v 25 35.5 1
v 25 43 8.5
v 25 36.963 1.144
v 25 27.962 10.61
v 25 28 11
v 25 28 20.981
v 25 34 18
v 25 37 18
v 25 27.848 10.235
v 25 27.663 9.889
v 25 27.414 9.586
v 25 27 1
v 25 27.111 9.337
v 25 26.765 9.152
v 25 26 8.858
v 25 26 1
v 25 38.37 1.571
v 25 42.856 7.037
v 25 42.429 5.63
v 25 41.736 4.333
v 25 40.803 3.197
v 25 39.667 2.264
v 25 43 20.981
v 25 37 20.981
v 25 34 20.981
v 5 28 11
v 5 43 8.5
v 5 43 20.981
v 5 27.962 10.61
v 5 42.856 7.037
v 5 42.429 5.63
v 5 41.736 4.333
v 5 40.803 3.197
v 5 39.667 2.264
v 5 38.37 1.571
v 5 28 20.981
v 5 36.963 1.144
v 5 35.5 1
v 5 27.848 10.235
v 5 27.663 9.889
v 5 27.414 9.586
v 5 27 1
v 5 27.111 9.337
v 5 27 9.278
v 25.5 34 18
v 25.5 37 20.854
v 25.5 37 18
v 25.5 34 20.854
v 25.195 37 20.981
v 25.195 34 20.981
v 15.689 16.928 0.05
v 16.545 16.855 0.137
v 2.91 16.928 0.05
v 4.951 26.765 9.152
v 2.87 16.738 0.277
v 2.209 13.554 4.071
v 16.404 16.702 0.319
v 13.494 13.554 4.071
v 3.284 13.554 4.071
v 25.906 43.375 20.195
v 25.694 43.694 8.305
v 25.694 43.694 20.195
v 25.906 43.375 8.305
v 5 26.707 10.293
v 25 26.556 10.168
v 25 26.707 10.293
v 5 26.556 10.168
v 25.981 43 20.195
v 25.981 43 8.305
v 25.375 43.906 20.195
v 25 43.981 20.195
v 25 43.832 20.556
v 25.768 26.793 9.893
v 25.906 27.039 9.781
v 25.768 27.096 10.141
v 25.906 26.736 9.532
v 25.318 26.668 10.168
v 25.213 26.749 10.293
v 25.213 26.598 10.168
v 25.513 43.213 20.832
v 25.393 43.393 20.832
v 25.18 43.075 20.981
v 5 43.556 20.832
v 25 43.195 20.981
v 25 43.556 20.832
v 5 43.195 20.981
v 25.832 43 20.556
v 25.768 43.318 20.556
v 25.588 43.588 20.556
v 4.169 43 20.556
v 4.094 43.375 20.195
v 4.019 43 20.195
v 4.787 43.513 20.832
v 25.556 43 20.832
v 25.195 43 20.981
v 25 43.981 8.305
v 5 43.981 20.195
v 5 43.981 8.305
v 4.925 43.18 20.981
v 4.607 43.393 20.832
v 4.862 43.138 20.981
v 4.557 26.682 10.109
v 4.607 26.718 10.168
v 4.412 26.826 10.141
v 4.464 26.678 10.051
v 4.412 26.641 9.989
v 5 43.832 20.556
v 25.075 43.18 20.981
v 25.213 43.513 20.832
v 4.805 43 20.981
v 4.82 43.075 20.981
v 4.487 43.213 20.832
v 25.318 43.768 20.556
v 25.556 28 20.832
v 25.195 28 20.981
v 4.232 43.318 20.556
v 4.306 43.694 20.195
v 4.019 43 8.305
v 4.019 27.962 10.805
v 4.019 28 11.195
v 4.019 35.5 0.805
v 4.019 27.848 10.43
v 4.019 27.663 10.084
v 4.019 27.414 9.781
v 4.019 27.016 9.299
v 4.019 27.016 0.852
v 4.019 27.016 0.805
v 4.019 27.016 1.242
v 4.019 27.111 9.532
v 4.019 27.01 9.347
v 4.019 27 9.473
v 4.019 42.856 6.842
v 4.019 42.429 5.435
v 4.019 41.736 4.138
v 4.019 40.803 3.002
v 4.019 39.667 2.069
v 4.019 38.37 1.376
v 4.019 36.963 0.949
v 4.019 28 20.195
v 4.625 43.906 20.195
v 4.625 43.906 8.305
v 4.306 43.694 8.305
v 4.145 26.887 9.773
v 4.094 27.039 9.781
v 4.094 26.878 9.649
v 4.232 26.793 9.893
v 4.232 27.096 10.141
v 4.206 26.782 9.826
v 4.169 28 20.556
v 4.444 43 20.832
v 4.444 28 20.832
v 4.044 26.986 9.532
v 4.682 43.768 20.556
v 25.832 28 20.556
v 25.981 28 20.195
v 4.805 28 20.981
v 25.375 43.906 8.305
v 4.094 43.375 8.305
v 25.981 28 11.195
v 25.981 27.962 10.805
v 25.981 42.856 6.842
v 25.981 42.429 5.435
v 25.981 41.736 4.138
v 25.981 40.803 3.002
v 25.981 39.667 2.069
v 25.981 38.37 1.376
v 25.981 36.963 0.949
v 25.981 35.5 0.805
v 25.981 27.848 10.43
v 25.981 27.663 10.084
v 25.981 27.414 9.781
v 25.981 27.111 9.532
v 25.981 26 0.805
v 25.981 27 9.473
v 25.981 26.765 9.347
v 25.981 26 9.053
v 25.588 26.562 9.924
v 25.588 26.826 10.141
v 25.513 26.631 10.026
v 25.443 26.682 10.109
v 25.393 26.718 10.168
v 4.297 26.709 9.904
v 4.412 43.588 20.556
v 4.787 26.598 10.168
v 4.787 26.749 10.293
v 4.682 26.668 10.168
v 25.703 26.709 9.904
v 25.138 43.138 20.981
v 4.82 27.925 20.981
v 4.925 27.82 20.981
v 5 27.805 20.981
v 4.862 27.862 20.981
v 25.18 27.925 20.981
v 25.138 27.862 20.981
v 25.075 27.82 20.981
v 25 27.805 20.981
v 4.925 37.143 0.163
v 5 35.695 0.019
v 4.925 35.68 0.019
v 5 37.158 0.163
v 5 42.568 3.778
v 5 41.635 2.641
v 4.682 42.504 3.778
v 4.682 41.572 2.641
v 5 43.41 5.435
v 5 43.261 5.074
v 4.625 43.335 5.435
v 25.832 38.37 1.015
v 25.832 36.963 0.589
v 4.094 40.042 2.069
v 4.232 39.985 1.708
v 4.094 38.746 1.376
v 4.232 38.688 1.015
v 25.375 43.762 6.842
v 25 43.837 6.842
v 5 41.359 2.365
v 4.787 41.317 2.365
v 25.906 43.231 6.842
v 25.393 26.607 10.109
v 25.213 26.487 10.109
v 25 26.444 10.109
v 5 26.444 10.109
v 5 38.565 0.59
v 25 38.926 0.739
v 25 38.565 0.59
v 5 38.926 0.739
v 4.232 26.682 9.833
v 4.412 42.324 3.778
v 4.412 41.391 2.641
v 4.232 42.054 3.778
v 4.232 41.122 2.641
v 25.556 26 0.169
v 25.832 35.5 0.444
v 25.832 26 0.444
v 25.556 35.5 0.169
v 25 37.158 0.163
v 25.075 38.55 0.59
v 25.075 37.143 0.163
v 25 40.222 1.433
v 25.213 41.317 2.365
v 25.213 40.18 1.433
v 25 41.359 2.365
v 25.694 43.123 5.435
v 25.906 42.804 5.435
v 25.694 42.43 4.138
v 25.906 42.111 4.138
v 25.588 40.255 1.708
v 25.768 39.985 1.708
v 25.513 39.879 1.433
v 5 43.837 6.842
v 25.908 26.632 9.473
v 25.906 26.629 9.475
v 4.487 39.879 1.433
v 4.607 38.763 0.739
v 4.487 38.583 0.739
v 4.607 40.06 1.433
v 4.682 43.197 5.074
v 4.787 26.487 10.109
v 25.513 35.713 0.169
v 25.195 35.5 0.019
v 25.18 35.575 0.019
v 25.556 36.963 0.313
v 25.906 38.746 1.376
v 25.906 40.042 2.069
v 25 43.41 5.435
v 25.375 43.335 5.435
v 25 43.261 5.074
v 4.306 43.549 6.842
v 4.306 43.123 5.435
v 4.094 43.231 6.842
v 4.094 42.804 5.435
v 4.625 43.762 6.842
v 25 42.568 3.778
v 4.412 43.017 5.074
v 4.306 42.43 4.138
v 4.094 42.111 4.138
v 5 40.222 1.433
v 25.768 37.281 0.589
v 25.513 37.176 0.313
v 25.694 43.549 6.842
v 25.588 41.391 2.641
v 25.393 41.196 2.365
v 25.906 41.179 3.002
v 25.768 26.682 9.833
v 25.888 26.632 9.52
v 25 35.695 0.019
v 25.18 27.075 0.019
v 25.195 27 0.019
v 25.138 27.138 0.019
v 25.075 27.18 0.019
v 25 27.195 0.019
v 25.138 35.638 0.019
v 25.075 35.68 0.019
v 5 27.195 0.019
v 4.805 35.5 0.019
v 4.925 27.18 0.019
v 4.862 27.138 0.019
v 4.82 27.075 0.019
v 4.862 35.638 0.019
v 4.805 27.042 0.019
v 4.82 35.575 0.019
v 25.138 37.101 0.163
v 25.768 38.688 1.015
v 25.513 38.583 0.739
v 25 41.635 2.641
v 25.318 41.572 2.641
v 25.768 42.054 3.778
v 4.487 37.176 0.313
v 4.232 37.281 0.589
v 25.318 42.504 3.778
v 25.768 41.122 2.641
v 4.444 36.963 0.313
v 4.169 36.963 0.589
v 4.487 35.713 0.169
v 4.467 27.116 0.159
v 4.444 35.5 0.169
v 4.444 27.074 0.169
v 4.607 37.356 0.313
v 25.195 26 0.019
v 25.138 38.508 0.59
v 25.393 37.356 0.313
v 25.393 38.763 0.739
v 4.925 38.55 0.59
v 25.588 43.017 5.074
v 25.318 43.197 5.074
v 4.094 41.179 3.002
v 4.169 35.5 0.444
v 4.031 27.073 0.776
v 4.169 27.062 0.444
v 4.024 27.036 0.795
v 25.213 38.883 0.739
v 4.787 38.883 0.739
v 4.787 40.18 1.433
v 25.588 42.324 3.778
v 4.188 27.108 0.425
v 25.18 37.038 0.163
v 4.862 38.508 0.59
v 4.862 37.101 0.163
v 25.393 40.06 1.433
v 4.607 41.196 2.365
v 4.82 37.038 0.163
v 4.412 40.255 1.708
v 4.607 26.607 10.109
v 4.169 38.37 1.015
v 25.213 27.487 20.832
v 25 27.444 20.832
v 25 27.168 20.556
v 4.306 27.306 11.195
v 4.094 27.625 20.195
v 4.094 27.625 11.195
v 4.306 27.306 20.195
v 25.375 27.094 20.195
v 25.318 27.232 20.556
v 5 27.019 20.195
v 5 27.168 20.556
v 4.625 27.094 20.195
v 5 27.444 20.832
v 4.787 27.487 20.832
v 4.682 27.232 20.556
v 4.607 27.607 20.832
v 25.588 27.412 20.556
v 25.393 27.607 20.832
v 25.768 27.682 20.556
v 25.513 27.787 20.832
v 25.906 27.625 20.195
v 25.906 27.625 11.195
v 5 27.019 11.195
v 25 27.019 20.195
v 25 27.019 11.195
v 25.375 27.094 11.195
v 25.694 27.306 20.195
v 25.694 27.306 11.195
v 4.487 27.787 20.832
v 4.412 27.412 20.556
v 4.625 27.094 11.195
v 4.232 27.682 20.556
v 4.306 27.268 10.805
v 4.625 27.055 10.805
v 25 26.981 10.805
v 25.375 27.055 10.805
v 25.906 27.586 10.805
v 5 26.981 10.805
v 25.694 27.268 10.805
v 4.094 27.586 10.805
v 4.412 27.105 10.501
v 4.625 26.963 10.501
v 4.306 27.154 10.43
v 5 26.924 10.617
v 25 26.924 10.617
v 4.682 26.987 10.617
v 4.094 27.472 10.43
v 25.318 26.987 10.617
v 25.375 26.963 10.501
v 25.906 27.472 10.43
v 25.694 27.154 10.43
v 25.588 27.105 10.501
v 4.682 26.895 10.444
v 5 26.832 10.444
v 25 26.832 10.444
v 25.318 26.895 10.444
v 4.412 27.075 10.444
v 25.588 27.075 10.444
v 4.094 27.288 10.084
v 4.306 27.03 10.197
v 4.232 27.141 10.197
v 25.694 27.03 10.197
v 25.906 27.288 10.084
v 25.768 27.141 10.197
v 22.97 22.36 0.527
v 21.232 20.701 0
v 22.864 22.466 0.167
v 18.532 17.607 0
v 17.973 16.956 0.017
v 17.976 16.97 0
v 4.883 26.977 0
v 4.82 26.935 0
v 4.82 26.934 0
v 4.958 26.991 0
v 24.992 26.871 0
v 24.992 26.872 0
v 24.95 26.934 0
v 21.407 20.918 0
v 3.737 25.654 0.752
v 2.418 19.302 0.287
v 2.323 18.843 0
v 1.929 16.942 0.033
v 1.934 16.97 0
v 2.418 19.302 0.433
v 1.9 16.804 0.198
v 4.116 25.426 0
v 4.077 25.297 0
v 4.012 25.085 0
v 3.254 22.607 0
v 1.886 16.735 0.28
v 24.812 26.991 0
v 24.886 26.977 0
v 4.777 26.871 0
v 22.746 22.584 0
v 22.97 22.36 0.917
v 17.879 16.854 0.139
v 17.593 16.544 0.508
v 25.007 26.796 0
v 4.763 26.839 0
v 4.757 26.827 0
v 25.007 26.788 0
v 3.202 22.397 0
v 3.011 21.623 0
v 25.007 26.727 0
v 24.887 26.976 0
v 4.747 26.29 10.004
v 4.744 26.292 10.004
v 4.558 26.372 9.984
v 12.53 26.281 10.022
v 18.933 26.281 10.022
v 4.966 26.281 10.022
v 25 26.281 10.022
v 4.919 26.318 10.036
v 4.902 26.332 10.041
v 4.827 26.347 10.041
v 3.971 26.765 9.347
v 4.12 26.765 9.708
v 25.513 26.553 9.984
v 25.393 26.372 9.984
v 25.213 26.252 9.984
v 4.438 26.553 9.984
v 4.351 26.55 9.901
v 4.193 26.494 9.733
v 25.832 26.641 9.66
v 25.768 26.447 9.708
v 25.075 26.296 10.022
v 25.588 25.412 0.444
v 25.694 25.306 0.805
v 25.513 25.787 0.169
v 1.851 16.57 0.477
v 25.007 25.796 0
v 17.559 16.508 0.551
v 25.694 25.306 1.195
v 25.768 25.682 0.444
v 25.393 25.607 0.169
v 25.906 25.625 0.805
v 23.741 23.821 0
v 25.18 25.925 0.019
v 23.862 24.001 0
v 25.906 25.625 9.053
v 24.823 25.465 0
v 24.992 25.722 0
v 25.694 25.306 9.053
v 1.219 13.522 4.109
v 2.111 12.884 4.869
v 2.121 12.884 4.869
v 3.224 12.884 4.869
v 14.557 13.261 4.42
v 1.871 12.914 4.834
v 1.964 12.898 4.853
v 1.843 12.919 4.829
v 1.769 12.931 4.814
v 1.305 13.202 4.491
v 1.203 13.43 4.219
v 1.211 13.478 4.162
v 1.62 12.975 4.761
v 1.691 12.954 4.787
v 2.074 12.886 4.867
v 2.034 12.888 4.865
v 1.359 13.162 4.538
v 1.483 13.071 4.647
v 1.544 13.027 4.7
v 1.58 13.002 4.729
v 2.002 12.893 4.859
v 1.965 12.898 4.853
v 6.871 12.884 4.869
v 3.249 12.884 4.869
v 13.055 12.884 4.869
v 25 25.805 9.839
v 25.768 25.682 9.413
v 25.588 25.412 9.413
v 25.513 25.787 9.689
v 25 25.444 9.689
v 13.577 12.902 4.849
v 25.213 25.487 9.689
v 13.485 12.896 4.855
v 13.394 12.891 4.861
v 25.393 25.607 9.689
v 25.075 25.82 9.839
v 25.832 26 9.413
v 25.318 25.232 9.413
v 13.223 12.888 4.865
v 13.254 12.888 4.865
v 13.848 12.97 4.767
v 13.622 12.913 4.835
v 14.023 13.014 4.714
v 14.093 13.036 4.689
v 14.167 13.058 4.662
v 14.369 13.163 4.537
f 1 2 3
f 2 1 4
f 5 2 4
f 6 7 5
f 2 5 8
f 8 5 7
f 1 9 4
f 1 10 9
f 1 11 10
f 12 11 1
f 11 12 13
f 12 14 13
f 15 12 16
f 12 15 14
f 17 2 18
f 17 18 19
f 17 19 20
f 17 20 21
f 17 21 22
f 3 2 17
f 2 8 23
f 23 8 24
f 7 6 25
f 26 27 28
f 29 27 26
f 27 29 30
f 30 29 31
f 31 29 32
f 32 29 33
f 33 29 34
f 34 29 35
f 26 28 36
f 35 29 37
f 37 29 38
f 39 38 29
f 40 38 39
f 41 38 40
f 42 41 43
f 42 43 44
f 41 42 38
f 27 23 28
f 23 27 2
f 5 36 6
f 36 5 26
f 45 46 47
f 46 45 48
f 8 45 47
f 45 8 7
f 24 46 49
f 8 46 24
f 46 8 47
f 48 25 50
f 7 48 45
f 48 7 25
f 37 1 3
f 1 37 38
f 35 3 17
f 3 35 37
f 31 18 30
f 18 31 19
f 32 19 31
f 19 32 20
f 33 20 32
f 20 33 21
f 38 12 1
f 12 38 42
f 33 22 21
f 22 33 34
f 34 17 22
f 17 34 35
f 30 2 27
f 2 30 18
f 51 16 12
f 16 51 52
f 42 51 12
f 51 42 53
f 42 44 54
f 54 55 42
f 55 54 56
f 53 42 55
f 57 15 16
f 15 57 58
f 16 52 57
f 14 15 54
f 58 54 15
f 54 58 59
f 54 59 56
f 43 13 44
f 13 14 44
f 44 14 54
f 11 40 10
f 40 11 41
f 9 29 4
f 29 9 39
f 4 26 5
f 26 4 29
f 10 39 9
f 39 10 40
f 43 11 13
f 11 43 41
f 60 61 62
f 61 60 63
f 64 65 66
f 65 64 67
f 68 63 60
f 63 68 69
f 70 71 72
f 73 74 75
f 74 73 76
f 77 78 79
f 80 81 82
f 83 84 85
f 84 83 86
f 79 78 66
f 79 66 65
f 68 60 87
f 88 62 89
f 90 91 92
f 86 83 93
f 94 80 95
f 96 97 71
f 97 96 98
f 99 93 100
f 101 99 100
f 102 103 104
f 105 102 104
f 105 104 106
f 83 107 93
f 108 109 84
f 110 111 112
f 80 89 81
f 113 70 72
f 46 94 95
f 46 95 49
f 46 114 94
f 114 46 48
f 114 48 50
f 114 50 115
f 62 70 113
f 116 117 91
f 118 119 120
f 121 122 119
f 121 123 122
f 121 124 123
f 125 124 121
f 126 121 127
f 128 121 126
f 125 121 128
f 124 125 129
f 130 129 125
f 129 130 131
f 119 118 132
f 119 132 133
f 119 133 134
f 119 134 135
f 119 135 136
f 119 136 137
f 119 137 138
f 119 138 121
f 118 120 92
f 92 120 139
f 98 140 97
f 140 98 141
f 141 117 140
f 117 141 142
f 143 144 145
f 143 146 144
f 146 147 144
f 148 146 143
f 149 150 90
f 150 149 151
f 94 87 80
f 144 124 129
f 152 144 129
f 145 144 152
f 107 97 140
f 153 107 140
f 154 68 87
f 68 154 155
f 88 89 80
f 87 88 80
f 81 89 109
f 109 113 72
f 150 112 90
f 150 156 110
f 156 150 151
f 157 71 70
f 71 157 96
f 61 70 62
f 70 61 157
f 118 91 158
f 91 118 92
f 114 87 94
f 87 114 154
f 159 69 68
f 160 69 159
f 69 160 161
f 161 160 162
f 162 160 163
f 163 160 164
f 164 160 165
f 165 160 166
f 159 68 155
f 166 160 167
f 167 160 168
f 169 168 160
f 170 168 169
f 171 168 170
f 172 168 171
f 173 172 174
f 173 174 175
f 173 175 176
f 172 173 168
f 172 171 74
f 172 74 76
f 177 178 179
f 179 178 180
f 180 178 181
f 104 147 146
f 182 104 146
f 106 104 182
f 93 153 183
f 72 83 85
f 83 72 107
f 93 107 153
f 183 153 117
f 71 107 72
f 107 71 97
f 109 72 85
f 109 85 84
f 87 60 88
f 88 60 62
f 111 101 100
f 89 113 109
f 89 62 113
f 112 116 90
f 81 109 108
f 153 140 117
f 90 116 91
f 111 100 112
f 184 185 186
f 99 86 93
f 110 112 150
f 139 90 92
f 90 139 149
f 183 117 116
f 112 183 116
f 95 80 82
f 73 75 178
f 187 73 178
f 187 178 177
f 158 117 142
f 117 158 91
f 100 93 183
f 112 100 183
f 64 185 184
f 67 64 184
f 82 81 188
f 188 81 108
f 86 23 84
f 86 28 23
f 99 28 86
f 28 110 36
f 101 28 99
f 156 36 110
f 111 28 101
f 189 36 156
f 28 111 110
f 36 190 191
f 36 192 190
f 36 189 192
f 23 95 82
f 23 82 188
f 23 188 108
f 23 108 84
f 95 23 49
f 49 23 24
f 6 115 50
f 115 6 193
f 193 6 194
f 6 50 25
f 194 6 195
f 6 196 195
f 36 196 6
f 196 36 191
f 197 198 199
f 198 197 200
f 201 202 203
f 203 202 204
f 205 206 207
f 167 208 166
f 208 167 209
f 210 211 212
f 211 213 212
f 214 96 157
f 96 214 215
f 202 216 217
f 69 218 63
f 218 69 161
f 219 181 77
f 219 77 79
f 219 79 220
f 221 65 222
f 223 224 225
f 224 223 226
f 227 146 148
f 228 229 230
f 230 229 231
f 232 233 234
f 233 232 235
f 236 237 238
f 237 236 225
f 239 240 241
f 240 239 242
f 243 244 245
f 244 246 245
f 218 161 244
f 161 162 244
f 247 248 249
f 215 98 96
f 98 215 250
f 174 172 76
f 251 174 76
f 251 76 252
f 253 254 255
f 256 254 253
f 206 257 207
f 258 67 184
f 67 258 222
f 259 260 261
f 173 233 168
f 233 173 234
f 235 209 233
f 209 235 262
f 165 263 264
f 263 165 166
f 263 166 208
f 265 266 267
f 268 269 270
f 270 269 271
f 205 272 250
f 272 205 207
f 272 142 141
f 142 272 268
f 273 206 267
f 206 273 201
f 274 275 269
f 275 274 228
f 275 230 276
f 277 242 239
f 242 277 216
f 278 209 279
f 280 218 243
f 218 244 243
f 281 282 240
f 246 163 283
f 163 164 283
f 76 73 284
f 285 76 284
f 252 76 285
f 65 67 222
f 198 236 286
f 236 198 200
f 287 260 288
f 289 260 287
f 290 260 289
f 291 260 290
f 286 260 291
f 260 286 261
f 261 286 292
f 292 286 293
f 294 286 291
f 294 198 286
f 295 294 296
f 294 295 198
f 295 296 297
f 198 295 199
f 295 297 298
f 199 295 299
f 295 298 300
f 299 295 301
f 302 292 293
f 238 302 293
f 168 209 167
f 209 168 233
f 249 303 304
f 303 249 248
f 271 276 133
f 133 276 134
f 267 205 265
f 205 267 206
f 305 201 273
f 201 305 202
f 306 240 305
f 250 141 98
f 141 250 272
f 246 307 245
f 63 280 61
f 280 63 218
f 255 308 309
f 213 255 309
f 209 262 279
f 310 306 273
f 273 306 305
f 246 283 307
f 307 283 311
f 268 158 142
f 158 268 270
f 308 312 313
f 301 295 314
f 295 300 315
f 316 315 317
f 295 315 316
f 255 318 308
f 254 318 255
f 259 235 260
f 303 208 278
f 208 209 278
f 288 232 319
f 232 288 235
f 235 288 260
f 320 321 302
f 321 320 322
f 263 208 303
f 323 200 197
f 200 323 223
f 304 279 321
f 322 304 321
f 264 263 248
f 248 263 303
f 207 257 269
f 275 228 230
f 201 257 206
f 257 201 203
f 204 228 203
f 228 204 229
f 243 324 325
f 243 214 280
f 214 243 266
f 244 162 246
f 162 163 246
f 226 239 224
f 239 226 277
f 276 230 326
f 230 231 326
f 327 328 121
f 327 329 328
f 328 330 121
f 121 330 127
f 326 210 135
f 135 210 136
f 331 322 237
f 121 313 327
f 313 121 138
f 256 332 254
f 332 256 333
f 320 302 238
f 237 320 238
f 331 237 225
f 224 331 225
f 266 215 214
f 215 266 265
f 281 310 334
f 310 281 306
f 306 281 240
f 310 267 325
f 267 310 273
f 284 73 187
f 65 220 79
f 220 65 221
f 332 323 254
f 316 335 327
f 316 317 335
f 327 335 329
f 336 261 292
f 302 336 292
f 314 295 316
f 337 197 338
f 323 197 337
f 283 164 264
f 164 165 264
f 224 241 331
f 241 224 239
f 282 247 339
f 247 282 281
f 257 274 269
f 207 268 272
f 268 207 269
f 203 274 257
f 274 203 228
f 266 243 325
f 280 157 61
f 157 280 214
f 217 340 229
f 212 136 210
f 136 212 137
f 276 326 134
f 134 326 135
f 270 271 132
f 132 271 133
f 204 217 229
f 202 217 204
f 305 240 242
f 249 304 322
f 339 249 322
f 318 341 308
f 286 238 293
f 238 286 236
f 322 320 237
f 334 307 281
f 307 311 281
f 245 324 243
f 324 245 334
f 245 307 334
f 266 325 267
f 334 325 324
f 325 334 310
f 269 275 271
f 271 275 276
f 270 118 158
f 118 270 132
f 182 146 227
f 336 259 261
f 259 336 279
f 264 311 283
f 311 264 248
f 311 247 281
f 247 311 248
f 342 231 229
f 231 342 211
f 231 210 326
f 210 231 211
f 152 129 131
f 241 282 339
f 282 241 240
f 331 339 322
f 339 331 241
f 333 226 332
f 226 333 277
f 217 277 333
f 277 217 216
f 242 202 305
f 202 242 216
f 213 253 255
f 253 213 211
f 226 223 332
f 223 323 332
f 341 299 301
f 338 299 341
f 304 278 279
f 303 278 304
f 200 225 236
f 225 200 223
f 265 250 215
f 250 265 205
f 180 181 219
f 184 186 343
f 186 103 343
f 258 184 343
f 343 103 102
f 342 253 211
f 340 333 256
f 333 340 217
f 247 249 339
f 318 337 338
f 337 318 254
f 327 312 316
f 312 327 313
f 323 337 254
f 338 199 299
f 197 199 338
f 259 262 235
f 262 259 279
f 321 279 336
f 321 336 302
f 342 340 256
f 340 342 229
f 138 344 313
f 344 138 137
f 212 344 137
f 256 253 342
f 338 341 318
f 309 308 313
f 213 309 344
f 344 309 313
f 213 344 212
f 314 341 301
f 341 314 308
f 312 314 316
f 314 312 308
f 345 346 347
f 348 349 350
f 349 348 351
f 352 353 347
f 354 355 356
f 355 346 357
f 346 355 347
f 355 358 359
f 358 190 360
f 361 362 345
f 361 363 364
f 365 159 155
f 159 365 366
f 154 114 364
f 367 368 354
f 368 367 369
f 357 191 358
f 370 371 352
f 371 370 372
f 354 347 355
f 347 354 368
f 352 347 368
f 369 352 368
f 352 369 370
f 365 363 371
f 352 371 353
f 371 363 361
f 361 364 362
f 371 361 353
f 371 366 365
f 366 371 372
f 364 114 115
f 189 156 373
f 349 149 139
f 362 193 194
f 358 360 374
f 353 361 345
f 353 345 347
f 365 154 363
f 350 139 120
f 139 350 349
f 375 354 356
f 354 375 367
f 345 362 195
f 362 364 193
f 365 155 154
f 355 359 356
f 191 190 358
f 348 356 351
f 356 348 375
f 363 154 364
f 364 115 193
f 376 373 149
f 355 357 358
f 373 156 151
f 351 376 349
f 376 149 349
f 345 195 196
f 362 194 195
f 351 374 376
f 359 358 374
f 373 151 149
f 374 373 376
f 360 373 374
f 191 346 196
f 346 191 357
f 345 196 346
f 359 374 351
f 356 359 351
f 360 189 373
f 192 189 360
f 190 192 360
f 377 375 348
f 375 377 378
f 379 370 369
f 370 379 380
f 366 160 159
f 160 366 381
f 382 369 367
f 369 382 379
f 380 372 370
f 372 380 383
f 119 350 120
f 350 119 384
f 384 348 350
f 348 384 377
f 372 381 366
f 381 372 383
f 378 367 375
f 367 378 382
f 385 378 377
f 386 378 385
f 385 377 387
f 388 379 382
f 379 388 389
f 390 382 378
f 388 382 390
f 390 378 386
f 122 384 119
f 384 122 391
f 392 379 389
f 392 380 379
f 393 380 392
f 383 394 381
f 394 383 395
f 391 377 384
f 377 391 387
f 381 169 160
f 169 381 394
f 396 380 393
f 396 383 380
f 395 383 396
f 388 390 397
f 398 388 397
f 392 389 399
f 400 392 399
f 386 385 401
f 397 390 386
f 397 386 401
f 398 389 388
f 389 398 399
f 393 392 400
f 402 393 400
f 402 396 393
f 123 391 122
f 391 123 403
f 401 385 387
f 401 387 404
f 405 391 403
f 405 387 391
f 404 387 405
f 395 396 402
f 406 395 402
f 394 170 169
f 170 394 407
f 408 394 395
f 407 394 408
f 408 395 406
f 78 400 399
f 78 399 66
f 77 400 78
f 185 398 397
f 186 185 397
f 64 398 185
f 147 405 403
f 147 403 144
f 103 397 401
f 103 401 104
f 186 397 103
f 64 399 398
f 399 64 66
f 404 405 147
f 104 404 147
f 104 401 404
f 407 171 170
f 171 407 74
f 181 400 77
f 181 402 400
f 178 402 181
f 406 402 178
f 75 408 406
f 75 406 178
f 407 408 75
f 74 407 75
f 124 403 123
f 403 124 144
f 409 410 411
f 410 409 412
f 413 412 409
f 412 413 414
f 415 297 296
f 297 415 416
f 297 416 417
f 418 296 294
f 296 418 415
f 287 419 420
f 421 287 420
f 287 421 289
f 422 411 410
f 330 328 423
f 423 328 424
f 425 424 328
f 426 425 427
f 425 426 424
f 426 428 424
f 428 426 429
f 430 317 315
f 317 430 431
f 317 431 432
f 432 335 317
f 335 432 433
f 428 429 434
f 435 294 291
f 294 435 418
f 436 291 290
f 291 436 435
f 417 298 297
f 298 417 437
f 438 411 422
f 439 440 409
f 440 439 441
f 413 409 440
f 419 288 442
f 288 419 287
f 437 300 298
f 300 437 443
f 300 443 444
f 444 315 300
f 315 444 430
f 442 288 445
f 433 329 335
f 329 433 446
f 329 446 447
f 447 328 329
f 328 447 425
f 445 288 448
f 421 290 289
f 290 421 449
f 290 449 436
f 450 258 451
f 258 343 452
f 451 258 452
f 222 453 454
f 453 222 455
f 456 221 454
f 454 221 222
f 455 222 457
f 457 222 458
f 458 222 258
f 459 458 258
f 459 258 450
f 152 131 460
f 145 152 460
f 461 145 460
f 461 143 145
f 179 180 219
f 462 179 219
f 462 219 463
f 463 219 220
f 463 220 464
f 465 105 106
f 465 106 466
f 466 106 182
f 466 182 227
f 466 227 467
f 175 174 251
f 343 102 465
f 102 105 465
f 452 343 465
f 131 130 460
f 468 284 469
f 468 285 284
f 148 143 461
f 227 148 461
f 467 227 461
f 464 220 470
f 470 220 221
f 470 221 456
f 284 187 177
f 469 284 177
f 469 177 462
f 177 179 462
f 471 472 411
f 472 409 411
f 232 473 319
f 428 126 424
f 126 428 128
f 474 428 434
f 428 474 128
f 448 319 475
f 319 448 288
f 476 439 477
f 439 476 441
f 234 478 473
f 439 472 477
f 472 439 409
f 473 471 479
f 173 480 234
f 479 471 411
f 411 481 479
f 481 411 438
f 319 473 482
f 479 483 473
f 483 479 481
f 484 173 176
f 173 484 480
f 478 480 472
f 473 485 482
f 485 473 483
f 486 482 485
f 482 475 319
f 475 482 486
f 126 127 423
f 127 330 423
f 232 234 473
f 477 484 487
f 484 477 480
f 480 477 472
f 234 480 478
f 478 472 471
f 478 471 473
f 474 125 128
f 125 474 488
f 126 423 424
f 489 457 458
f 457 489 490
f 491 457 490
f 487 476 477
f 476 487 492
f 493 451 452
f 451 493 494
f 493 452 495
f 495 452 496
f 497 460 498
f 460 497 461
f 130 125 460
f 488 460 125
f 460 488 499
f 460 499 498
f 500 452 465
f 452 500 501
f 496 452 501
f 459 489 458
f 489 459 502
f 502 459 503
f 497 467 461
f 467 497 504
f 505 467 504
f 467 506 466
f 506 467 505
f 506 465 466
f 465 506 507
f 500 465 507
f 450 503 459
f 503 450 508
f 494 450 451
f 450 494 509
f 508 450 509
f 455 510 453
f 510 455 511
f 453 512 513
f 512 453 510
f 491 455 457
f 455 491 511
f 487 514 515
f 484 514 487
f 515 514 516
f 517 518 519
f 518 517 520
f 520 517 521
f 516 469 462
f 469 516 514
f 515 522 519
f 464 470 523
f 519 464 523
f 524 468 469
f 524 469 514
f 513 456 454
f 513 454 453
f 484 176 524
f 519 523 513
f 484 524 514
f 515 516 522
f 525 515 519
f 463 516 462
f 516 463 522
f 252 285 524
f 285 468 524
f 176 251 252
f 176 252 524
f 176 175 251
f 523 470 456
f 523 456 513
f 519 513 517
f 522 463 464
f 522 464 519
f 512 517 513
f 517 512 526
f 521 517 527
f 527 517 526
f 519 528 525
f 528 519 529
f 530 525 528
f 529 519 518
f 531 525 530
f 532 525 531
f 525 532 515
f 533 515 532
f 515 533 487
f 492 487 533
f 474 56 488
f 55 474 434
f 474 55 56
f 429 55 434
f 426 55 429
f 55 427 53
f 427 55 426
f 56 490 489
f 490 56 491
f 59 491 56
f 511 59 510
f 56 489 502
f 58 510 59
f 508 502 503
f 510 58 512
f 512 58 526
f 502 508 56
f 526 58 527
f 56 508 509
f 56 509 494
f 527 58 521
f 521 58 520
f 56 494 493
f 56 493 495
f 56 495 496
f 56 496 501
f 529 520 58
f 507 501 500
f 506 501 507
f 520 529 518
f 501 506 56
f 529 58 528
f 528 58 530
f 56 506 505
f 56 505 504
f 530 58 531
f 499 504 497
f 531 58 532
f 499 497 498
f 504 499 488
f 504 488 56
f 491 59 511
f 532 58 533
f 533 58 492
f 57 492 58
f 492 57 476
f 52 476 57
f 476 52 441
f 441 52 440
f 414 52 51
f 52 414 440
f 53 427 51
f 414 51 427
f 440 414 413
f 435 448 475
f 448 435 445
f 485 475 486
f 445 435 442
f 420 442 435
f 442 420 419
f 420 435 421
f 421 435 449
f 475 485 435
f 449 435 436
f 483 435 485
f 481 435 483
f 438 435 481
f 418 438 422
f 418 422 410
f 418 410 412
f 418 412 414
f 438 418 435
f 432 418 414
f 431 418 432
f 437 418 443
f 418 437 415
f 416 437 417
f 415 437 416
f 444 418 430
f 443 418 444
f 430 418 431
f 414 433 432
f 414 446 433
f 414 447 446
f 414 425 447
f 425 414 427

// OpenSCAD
// file: bolts.scad
$radial_error = 0.1;
$fn = 16;

module cylinder_outer(height, radius, fn=$fn, extension=0) {
	fudge = 1/cos(180/fn);
	translate([0, 0, -extension]) cylinder(h=height+extension,r=radius*fudge+$radial_error, $fn=fn);
}

module cylinder_inner(height, radius, fn=$fn, extension=0) {
	translate([0, 0, -extension]) cylinder(h=height+extension,r=radius-$radial_error,$fn=fn);
}

// Make a hole for a bolt/screw combination.
module bolt(diameter=3, depth=8, nut_offset=2, shaft_length=10, inset=10) {
	hole(diameter, depth, inset);
	hull() {
		shaft_width = diameter;
		translate([0, 0, nut_offset]) rotate(360/12, [0, 0, 1]) cylinder_outer(diameter, shaft_width, 6);
		translate([0, shaft_length, nut_offset]) rotate(360/12, [0, 0, 1]) cylinder_outer(diameter, shaft_width, 6);
	}
}

// Make a hole. The diameter is the size of the screw (e.g. 3 for M3). Depth is how far the hole should go for the thread, and inset is how far out there should be a hole for the head to go.
module hole(diameter=3, depth=6, inset=10, extension=0) {
	cylinder_outer(depth, diameter/2, extension=extension);
	translate([0, 0, depth]) cylinder_outer(inset, diameter, 32);
}

module countersunk_hole(diameter=3, depth=6, inset=10) {
	hole(diameter, depth, inset);
	translate([0, 0, depth-diameter/2]) cylinder(r1=diameter/2+$radial_error, r2=diameter+$radial_error, h=diameter/2);
}

module mounting_hole(diameter=3, depth=6, inset=10, outset=3) {
	difference() {
		cylinder_outer(depth, diameter/2+outset);
		hole(diameter=diameter, depth=depth, inset=inset);
	}
}

rotate(90, [1, 0, 0]) difference() {
	cube([30, 10, 10]);
	translate([5, 5, 0]) bolt(diameter=3, depth=8);
	translate([15, 5, 0]) bolt(diameter=4, depth=8);
	translate([25, 5, 0]) countersunk_hole(diameter=4, depth=8);
}
// file: interpolate.scad
// Linear interpolation.
function lerp(t, a, b) = (a * (1 - t)) + (b * t);

// Saw-tooth interpolation.
function serp(t, a, b, c) = t < 0.5 ? lerp(t * 2, a, b) : lerp(((t - 0.5) * 2), b, c);

/// Cubic interpolate between four values
function quadratic_interpolate(t, a, b, c) =
	let(p1 = lerp(t, a, b), p2 = lerp(t, b, c))
	lerp(t, p1, p2);
// file: intake.scad
use <bolts.scad>;

$fn = 32;

clip_offset = 0.5;
extruder_offset = 20;

// Distance from outside of metal case to center of extruder.
fan_mount_offset = 24;
top_screws_offset = -1.5 / 2;

thickness = 1;
offset = 4;

module clip() {
	color("blue") render() translate([2, 0, 12]) {
		difference() {
			union() {
				translate([0, -8, 0]) {
					cube([8, 8, 8]);
					translate([18, 0, 0]) cube([8, 8, 8]);
				}
				translate([0, -2, 0]) cube([26, 24, 8]);
			}
			translate([2, 0, 0]) cube([22, 20, 8]);
			translate([2+6, -2, 0]) cube([22-12, 2, 8]);
			
			translate([0, -4, 4]) rotate([90, 0, 90]) bolt(3, 22, 2.5);
		}
	}
}

module fan_opening() {
	translate([0, offset, 0]) {
		translate([5, 0, 11]) cube([20, 15, 10]);
		translate([25, 15/2-3/2, 20-3]) cube([0.5, 3, 4]);
		translate([4, -1, 20]) cube([20+thickness*2, 15+thickness*2, 10]);
	}
}

module fan_intake(inner_radius, outer_radius, duct_rotation = -40, height=8, width=20, inset_radius=2) {
	render() translate([5, 0, 0]) difference() {
		union() {
			translate([0, offset, 10]) cube([20, 15, 10-thickness]);
			// Fan attachment:
			hull() {
				translate([0, offset, 10]) cube([20, 15, 1]);
				intersection() {
					translate([0, 15/2+offset, 15/2]) rotate(90, [0, 1, 0]) cylinder(h=20,r=15/2);
					translate([0, offset, 0]) cube([20, 15, 10]);
				}
				
				translate([0, offset-inset_radius/2, 0]) rotate(-90, [0, 0, 1]) cube([1, 20, height+inset_radius]);
			}
			
			// Bottom connector to duct:
			hull() {
				across = outer_radius - inner_radius;
				
				translate([0, offset-inset_radius/2, 0]) rotate(-90, [0, 0, 1]) cube([1, 20, height+inset_radius]);
				translate([-5, -24, -2]) cube([1, 1, 1], true);
			}
		}
		
		// Cut out the rounded inset:
		inset_offset = height + inset_radius;
		
		hull() {
			translate([-width/2, -inset_radius+offset, inset_offset]) rotate(90, [0, 1, 0]) cylinder(h=width*2,r=inset_radius);
			translate([-width/2, -24, 0]) rotate(90, [0, 1, 0]) cylinder(h=width*2,r=inset_radius);
		}
		
		translate([0, -inset_radius+offset, inset_offset]) cube([20, inset_radius, 20-height-inset_radius*2]);
	}
}

module fan_ducting_example() {
	render() translate([0, 0, thickness]) difference() {
		union() {
			render() minkowski() {
				fan_intake();
				translate([0, 0, -thickness]) cylinder(h=thickness*2,r=thickness,$fn=8);
			}
		}
		fan_intake();
		fan_opening();
	}
}

module fan_mock() {
	render() translate([0, offset, extruder_offset+50/2]) rotate(-90, [1, 0, 0]) {
		translate([0, 0, 15/2]) cube([50, 50, 15], center=true);
	}
}

block_height = 8;

module fan_mount_holes(thickness=2) {
	translate([0, -thickness-8, 50+block_height/2]) rotate(180, [0, 0, 1]) rotate(90, [1, 0, 0]) {
		translate([-22, 0, 0]) bolt(depth=10);
		translate([ 22, 0, 0]) bolt(depth=10);
	}
}

module fan_mount_top(inset=2) {
	render() translate([0, 2, extruder_offset]) difference() {
		translate([-26, -inset, 0]) {
			// scews centered by 30 apart
			translate([0, -10, 50]) cube([52, 10, block_height]);
		}
		
		// The offset of the screw is 3 from the edge.
		hull() {
			translate([-14, -inset-3, 50]) hole(depth=block_height, inset=0);
			translate([-16, -inset-3, 50]) hole(depth=block_height, inset=0);
		}
		
		hull() {
			translate([14, -inset-3, 50]) hole(depth=block_height, inset=0);
			translate([16, -inset-3, 50]) hole(depth=block_height, inset=0);
		}
		
		fan_mount_holes();
	}
}

module fan_mount_bracket(thickness=4) {
	bottom_extension = 8;
	
	render() translate([0, thickness, extruder_offset]) difference() {
		translate([-26, -thickness, 0]) {
			//55 to base of fan
			translate([0, 0, 0]) cube([52, thickness, 50+block_height]);
			
			translate([30, 0, -bottom_extension]) cube([22, 18, bottom_extension+2]);
		}
		
		// Inset for duct attachment:
		translate([4, -1, -bottom_extension]) cube([22, 1+16+4, bottom_extension+4]);

		translate([0, 0, 25]) rotate(90, [1, 0, 0]) cylinder(r=20,h=thickness+1);
		
		translate([0, 0, 50/2]) rotate([-90, 0, 0]) {
			translate([-23, 18, -thickness]) hole(diameter=2.8, depth=thickness, inset=1, extension=1);
			translate([23, -20, -thickness]) hole(diameter=2.8, depth=thickness, inset=1, extension=1);
		}
		
		fan_mount_holes();
	}
}

module extruder() {
	color("orange") {
		translate([0, 0, 6]) cylinder(h=70-6, r=3);
		cylinder(h=6,r1=0.5, r2=5);
		translate([0, 0, 10+15/2]) cube([18, 22, 15], true);
	}
}

module fan_example() {
	//extruder();
	translate([0, 25, 0]) {
		fan_mock();
		
		clip();
		
		fan_mount_top();
		fan_mount_bracket();
		
		fan_ducting_example();
		
		color("red") #fan_opening();
		color("blue") fan_intake();
	}
}

module fan_bracket() {
	translate([0, fan_mount_offset, 0]) {
		fan_mount_bracket();
		fan_mount_top();
	}
}

//fan_intake(height=3);
//fan_example();
// main file
use <intake.scad>;
use <interpolate.scad>;

thickness = 1;

module duct() {
	render() difference() {
		translate([0, 0, duct_offset]) union() {
			vortex_chamber();
			vortex_fins();
		}
		
	}
}

module duct() {
	render() difference() {
		render() minkowski() {
			translate([0, 24, thickness]) fan_intake();
			//translate([0, 0, -thickness]) cylinder(h=thickness*2, r=thickness, $fn=32);
			sphere(r=thickness, $fn=16);
		}
		
		// Cut out the fan opening:
		translate([0, 24, thickness]) {
			fan_opening();
			fan_intake();
		}
	}
}

//extruder();

//fan_bracket();

render() difference() {
	duct();
	rotate([40, 0, 0]) cube([40, 26, 40], true);
	translate([0, 0, -10]) cube([100, 100, 10]);
}
